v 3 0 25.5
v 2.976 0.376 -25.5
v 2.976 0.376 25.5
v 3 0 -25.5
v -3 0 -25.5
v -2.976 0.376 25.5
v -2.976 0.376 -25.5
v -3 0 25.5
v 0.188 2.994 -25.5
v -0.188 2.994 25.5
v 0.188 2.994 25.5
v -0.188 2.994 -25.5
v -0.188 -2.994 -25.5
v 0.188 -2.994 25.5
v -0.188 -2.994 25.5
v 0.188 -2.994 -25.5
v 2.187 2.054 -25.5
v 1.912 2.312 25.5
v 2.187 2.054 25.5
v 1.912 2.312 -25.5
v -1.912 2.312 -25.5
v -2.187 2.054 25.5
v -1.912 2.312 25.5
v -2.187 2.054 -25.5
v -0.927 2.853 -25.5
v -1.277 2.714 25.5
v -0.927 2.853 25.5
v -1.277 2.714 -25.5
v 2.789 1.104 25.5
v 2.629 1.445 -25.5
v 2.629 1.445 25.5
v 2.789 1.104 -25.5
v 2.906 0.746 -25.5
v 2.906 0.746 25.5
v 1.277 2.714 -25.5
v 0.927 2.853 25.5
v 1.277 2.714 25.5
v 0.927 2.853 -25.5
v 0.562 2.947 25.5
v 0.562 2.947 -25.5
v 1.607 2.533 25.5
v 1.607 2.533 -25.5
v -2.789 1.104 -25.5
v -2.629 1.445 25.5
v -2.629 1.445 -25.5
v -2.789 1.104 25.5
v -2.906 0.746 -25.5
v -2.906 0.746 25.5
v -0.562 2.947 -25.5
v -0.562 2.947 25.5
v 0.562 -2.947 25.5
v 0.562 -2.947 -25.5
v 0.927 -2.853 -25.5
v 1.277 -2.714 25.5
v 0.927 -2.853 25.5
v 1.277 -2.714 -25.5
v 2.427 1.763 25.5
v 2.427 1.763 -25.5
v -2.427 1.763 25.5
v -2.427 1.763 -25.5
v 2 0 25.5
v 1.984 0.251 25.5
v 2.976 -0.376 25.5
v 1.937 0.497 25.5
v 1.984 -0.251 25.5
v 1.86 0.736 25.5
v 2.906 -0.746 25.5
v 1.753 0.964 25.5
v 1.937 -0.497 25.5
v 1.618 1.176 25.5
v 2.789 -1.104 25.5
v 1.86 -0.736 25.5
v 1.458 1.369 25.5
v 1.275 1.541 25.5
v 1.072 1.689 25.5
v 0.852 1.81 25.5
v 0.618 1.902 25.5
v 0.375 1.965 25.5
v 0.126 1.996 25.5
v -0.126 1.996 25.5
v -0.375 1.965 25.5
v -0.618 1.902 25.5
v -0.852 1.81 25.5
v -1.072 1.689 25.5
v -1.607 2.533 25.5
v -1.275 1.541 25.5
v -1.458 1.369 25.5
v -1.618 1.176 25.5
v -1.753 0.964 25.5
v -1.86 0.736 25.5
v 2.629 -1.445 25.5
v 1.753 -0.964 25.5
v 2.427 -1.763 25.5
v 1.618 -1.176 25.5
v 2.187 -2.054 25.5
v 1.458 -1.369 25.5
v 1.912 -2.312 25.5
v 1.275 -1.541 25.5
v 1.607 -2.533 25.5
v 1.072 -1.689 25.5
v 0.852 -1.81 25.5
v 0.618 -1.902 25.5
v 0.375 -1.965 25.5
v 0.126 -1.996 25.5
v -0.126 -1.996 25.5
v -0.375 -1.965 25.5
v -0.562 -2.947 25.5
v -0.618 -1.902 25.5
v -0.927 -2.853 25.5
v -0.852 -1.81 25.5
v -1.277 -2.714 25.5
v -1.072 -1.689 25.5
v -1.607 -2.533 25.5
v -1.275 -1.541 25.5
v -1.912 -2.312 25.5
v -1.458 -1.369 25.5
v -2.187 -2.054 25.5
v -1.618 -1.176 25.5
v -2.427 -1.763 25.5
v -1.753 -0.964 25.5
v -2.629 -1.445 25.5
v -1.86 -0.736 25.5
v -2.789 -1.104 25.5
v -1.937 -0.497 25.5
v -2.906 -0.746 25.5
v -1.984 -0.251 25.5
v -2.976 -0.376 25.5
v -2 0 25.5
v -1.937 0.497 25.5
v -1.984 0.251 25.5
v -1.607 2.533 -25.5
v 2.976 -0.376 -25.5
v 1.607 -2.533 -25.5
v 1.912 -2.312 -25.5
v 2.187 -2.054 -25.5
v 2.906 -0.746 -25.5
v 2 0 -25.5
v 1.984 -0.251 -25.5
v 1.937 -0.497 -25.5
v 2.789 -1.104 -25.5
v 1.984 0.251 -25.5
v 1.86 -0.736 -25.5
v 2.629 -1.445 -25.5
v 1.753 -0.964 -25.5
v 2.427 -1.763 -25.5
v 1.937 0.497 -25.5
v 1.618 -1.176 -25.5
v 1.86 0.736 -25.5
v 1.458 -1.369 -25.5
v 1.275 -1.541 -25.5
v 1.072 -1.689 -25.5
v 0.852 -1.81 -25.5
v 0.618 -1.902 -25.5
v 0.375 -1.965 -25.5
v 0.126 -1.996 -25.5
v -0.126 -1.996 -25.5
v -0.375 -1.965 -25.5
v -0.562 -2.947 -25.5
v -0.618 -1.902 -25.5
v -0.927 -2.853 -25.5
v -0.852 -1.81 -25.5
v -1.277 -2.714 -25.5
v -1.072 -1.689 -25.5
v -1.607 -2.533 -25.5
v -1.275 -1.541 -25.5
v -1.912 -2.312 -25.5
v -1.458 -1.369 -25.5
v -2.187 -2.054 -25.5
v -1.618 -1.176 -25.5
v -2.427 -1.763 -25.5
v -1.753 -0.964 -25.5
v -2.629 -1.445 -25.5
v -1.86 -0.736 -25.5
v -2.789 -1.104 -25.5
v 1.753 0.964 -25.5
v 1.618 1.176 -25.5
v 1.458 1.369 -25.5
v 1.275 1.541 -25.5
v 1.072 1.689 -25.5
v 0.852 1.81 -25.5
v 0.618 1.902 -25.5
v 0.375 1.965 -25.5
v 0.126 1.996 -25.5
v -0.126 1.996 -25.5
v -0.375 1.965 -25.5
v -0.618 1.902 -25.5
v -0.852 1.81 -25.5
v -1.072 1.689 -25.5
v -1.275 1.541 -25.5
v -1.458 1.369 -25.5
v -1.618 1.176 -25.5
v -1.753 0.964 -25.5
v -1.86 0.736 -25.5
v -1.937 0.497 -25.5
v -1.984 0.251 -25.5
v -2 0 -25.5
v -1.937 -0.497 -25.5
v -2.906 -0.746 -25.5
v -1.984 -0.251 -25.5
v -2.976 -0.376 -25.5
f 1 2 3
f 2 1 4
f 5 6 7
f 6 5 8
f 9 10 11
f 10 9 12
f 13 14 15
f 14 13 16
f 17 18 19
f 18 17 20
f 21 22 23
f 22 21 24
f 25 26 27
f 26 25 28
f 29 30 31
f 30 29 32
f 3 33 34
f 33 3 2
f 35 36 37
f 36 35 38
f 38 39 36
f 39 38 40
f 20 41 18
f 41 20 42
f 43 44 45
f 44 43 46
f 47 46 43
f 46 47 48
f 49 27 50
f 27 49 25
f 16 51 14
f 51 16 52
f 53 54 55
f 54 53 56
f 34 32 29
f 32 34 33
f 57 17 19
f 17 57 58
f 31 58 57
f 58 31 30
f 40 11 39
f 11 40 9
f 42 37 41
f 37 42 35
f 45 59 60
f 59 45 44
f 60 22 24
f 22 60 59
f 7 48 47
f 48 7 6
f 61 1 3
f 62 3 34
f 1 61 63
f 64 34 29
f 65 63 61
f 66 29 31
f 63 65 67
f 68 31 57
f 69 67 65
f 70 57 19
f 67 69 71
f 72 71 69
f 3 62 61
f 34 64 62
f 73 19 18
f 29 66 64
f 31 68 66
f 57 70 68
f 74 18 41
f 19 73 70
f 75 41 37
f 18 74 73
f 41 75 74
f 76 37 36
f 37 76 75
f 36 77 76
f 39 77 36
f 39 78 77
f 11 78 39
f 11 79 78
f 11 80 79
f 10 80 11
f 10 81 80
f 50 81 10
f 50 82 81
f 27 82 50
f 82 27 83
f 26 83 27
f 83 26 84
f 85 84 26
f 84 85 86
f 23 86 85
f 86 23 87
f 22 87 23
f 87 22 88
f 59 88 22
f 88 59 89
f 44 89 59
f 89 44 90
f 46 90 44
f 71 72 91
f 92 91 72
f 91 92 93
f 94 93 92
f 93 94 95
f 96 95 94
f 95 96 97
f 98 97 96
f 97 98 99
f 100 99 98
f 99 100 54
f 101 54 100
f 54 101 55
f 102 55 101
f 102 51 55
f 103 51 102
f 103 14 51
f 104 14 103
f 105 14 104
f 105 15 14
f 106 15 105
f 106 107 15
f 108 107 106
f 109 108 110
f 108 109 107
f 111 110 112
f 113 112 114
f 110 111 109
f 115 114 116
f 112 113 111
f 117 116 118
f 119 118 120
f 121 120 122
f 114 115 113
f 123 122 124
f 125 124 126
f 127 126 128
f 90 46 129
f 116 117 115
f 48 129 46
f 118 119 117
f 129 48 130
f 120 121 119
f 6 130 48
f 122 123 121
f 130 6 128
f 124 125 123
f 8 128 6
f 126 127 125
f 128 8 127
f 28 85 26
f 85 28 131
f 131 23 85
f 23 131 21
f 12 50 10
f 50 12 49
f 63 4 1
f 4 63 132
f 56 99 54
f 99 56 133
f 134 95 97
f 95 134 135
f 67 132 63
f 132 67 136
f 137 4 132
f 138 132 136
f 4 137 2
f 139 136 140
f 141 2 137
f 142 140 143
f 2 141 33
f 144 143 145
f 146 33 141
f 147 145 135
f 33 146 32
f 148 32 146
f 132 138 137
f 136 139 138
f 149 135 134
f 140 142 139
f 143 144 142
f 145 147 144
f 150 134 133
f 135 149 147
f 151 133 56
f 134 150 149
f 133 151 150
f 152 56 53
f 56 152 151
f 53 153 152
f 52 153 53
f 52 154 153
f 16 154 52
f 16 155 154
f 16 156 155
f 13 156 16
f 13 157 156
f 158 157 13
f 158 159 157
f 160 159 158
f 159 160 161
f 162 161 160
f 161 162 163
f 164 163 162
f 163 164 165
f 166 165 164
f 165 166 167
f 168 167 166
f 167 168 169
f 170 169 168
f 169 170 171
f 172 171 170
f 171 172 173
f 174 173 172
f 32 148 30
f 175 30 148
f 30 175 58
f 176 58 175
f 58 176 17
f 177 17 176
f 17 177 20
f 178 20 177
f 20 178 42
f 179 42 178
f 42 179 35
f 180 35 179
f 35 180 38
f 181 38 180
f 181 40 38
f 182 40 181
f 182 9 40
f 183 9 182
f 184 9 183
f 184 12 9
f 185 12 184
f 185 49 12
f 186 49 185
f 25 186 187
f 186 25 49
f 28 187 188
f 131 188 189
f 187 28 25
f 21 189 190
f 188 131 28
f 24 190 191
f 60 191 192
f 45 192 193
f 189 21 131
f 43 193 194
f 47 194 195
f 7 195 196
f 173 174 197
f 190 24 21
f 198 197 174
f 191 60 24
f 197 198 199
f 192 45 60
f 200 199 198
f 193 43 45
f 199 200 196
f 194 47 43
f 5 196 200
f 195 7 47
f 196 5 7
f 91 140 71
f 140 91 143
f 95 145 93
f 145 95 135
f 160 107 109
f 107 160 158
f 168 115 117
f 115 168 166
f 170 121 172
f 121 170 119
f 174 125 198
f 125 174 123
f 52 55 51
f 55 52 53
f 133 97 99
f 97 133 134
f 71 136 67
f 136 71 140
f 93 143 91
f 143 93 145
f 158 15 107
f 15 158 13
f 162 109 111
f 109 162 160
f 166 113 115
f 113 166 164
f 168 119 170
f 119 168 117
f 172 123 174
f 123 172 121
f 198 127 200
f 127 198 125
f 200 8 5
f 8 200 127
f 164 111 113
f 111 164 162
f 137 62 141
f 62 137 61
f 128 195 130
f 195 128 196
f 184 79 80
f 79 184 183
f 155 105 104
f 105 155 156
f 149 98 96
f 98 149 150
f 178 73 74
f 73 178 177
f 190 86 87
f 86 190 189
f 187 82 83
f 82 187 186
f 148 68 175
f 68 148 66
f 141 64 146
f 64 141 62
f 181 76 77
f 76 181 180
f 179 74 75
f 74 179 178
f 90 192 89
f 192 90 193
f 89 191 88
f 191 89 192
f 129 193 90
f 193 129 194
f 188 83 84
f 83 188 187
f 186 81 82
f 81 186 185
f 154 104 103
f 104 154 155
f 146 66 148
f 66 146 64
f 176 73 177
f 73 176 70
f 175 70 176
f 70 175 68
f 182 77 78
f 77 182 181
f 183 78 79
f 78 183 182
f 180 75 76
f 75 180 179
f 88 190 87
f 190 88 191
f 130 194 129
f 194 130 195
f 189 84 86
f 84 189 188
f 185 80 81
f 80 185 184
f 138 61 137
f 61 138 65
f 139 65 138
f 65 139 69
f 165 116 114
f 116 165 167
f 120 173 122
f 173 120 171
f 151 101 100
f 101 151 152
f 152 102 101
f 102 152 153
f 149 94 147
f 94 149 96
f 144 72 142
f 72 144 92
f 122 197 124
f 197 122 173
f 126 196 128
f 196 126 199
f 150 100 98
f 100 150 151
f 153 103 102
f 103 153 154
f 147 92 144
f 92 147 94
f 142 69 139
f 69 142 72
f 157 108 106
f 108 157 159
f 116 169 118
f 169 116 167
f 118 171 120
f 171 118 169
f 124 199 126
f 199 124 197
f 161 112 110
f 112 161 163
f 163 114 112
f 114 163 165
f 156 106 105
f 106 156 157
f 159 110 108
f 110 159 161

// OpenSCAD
$fn = 50;


difference() {
	union() {
		translate(v = [0, 0, -25.5000000000]) {
			cylinder(h = 51, r = 3.0000000000);
		}
	}
	union() {
		translate(v = [0, 0, -100.0000000000]) {
			cylinder(h = 200, r = 2);
		}
	}
}
